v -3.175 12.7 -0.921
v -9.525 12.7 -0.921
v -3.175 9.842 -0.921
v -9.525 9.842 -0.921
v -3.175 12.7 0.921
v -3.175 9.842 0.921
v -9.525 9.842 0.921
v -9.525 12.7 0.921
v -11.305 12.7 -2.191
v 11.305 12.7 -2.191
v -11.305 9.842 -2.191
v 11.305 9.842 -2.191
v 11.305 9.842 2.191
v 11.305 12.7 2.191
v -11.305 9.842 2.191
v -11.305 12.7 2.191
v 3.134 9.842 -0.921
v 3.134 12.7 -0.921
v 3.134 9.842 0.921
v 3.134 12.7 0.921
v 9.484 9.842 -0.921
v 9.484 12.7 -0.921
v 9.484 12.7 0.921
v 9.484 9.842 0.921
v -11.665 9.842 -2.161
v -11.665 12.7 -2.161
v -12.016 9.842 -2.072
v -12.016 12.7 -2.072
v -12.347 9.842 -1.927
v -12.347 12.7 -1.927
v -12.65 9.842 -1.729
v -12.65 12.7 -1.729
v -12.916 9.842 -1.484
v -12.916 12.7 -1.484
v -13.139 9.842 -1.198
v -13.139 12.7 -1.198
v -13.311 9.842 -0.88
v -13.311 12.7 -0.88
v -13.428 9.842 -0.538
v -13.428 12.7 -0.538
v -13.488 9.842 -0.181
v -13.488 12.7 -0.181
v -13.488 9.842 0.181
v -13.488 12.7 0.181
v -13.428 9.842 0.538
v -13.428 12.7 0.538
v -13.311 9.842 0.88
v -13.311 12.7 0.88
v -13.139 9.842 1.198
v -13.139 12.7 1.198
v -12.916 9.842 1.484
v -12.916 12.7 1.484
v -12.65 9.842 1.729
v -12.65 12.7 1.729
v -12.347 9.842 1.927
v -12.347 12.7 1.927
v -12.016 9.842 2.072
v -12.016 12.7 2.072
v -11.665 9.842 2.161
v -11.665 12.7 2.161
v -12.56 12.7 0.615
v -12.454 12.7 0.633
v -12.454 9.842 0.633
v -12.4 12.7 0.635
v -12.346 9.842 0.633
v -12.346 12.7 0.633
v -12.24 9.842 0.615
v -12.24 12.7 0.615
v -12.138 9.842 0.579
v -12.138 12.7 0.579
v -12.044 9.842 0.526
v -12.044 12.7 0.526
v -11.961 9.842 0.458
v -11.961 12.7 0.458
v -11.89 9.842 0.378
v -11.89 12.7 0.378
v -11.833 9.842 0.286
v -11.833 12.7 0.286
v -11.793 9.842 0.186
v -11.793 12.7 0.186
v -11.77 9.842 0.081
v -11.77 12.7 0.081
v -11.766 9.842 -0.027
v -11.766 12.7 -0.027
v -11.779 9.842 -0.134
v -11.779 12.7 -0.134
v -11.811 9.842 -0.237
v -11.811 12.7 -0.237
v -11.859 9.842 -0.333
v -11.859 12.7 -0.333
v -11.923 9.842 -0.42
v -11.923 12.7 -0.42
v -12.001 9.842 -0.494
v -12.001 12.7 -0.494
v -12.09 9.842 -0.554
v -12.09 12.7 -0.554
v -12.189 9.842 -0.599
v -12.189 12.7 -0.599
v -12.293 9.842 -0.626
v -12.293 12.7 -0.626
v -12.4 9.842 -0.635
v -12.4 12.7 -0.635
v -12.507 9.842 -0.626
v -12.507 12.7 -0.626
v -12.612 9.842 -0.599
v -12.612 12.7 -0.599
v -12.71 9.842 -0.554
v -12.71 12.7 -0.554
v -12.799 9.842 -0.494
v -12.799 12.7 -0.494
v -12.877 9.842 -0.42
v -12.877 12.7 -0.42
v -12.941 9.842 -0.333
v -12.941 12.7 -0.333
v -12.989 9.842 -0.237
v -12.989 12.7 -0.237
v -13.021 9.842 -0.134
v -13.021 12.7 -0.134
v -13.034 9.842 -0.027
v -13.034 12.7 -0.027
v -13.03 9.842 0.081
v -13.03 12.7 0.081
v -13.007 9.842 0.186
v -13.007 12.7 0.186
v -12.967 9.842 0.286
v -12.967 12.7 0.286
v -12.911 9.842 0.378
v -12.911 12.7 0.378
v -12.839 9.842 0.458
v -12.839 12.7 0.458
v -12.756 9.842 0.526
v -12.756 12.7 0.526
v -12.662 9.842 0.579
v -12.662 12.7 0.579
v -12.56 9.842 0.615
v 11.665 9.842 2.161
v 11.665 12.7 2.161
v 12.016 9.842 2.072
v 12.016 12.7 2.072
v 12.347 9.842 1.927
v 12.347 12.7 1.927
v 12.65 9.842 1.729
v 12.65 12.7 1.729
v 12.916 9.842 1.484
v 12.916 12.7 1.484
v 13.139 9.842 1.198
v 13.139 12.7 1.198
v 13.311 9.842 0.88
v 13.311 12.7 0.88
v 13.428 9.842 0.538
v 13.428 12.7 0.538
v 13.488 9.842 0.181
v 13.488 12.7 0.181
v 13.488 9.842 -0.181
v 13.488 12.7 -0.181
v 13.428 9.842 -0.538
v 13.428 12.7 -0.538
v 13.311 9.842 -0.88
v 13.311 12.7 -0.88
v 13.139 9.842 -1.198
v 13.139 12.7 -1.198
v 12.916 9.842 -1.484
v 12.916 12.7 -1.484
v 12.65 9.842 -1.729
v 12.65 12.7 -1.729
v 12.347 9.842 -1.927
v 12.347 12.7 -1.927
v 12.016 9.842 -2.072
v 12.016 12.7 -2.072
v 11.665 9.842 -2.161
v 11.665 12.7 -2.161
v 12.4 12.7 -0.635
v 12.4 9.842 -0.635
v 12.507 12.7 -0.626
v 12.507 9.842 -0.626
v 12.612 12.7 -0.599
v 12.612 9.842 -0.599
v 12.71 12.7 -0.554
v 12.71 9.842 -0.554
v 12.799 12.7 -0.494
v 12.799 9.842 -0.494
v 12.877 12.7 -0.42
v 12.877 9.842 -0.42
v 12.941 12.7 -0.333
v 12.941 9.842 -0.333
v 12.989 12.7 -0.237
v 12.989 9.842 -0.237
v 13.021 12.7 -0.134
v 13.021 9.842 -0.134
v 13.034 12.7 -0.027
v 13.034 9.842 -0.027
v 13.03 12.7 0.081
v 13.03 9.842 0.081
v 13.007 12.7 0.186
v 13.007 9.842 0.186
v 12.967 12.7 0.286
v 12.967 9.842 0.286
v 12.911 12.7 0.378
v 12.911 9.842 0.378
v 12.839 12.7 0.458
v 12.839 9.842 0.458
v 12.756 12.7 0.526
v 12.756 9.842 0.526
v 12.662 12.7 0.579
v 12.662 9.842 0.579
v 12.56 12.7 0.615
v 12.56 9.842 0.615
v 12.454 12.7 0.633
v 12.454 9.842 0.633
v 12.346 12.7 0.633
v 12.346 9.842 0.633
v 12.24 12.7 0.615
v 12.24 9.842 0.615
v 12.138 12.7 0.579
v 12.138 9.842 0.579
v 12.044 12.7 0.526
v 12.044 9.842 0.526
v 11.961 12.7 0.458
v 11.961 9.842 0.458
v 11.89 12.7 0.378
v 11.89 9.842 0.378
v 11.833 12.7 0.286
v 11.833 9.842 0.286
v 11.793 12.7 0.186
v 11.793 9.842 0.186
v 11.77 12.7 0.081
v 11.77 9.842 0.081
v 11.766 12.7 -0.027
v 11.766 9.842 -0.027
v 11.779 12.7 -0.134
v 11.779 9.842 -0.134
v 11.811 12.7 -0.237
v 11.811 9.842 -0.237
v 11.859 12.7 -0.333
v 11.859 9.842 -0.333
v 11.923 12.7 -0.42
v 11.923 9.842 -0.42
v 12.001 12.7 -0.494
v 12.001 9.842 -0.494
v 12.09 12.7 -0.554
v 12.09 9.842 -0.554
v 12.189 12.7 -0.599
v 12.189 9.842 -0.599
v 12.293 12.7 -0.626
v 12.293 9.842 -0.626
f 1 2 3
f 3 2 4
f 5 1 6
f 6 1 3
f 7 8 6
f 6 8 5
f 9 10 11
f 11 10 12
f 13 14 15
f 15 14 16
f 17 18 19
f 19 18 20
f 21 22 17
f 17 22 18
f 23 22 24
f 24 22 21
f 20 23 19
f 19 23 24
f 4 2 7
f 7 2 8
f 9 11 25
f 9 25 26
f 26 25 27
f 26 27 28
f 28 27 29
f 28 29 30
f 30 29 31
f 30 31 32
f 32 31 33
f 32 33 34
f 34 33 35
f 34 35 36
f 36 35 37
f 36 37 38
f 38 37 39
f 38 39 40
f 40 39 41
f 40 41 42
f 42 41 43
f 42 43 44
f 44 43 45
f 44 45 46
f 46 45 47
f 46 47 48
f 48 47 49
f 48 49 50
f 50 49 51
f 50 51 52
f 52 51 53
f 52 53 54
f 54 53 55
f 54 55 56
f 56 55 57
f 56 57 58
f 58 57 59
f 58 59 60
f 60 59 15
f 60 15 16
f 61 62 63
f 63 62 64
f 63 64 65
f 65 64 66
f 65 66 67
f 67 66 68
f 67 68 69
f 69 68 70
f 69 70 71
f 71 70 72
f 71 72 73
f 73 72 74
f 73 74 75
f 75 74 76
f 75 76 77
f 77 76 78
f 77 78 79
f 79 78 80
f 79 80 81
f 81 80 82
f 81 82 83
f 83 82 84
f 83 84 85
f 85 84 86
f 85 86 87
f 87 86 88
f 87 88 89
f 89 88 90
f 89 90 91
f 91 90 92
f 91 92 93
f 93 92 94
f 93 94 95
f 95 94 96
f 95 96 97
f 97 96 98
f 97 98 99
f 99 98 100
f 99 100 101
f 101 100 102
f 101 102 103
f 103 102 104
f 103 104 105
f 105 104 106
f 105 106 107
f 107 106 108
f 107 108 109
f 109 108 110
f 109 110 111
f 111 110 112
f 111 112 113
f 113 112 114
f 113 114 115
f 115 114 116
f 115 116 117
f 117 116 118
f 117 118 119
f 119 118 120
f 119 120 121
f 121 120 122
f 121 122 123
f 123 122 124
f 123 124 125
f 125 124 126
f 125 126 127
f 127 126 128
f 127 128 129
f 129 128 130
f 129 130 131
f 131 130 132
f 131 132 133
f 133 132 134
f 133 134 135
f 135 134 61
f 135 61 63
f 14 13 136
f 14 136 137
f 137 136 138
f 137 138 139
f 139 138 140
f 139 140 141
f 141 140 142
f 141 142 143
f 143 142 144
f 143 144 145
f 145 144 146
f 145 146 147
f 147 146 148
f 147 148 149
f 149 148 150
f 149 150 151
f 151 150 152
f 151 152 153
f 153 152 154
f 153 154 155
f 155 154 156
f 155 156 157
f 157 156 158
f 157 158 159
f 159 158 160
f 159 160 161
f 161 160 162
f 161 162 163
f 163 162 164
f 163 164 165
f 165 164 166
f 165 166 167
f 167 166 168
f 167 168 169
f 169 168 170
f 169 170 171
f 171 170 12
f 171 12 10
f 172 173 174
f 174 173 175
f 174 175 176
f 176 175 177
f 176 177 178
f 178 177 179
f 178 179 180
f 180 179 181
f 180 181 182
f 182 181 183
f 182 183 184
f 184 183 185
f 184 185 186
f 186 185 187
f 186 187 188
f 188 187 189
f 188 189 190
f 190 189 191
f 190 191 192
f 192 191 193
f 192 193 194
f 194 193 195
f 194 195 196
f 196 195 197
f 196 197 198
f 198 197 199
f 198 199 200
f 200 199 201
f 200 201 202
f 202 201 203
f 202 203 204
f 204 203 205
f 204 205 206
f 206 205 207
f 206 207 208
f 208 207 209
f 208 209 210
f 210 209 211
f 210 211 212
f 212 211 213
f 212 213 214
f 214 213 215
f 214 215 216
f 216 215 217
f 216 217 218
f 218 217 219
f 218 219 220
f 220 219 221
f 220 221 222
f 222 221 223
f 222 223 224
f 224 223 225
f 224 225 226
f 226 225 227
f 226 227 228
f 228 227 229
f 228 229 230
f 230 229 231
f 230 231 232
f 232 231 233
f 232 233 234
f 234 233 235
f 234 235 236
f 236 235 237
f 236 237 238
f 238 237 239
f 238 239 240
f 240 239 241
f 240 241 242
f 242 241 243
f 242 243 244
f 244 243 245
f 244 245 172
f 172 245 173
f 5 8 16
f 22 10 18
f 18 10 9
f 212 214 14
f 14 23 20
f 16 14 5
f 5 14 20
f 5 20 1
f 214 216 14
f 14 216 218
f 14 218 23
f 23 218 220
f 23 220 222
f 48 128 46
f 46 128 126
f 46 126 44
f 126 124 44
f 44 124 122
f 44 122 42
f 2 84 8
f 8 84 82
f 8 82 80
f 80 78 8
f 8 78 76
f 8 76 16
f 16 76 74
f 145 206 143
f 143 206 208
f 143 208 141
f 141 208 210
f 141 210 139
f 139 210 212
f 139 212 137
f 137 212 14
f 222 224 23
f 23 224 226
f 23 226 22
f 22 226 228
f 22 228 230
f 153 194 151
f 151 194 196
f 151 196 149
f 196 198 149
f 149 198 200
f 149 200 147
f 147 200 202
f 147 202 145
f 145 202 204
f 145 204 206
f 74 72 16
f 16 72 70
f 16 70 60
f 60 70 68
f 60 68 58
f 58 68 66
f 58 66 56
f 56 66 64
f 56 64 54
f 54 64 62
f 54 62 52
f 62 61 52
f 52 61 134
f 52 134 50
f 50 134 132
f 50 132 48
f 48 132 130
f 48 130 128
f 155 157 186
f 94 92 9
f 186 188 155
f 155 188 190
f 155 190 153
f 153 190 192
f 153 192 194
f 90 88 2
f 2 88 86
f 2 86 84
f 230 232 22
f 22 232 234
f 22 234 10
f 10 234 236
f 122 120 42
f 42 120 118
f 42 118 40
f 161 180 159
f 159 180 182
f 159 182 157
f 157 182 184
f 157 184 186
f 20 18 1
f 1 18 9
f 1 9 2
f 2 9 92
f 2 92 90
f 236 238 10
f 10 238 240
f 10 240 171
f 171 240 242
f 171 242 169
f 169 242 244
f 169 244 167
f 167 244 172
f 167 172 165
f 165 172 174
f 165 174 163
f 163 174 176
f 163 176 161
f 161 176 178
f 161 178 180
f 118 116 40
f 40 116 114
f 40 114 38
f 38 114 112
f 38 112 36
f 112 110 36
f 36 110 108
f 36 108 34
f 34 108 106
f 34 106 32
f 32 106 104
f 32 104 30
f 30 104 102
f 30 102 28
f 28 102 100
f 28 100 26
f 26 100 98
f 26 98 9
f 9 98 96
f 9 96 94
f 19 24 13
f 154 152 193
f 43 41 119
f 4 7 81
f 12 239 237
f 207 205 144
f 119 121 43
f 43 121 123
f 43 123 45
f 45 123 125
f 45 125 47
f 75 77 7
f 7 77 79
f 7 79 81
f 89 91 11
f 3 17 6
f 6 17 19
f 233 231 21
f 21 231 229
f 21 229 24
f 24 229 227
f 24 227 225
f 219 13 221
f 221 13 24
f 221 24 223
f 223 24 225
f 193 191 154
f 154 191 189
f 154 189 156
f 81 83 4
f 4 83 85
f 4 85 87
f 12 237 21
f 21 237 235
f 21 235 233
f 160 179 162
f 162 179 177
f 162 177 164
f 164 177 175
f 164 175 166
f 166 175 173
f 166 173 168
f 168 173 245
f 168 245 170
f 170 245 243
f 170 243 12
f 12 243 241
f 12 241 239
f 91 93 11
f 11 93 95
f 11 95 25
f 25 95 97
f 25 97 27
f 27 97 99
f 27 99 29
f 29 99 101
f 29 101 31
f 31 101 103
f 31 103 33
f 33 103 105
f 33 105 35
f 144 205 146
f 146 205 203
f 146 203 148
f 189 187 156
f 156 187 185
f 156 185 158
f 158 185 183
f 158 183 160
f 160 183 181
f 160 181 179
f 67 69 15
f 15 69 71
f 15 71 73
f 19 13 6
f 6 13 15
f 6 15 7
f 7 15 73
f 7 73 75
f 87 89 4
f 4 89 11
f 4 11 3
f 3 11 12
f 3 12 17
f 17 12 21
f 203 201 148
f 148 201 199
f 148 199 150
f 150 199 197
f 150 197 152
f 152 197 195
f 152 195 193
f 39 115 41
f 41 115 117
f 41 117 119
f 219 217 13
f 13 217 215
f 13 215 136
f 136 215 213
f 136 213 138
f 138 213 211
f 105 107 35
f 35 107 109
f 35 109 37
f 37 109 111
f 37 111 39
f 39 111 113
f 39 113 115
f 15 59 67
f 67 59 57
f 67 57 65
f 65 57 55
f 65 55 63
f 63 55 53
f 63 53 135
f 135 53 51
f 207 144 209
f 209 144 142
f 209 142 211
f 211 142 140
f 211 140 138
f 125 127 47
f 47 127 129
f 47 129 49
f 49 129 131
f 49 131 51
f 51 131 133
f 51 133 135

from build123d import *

# Parameters (mm, degrees)
SKETCH1_W                = 22.609360872
SKETCH1_H                = 4.3815
SKETCH1_W_2              = 6.35
SKETCH1_H_2              = 1.8415
BOSS_EXTRUDE1_DEPTH      = 6.35
BOSS_EXTRUDE2_REACH      = 15.15
BOSS_EXTRUDE3_START      = 2.19075
BOSS_EXTRUDE3_DEPTH      = 2.19075
SKETCH7_R                = 1.5875
BOSS_EXTRUDE4_DEPTH      = 1.27
MIRROR2_COPY_1_SKETCH_R  = 1.5875
MIRROR2_COPY_1_DEPTH     = 1.27
BOSS_EXTRUDE5_DEPTH      = 6.35
BOSS_EXTRUDE5_DEPTH_BACK = 1.27
SKETCH8_R                = 0.635
SKETCH9_W                = 22.609360872
SKETCH9_H                = 6.35
BOSS_EXTRUDE6_DEPTH      = 4.3815
SKETCH10_W               = 6.35
SKETCH10_H               = 1.8415
CUT_EXTRUDE1_DEPTH       = 12.7
CUT_EXTRUDE2_DEPTH       = 23.114
CUT_EXTRUDE2_DEPTH_BACK  = 4.7625
SKETCH12_W               = 31.633822951
SKETCH12_H               = 14.456952732


with BuildPart() as part:
    # Sketch1 → Boss-Extrude1 (new body)
    with BuildSketch(Plane(origin=(0, 0, 0), x_dir=(1, 0, 0), z_dir=(0, 1, 0))):
        Rectangle(SKETCH1_W, SKETCH1_H)
        with Locations((-6.35, 0)):
            Rectangle(SKETCH1_W_2, SKETCH1_H_2, mode=Mode.SUBTRACT)
        with Locations((6.308703221, 0)):
            Rectangle(SKETCH1_W_2, SKETCH1_H_2, mode=Mode.SUBTRACT)
    extrude(amount=BOSS_EXTRUDE1_DEPTH)

    # Boss-Extrude2: up to this face of the body (flat: up to its plane)
    boss_extrude2_end = Plane(part.part.faces().sort_by_distance((0, 3.175, -2.19075))[0])
    # Sketch2 → Boss-Extrude2 (add, up to the picked face)
    with BuildSketch(Plane.XY, mode=Mode.PRIVATE) as boss_extrude2_sk1:
        with BuildLine():
            Line((3.175, 0), (-3.175, 0))
            ThreePointArc((-3.175, 0), (0, -3.175), (3.175, 0))
        make_face()
    boss_extrude2_tool1 = split(extrude(boss_extrude2_sk1.sketch, amount=-BOSS_EXTRUDE2_REACH, mode=Mode.PRIVATE), bisect_by=boss_extrude2_end, keep=Keep.BOTH, mode=Mode.PRIVATE)
    add(boss_extrude2_tool1.solids().sort_by(Axis((0, -1.347512, 0), (0, 0, -1)))[0])

    # Sketch2<3> → Boss-Extrude3 (add)
    with BuildSketch(Plane.XY.offset(BOSS_EXTRUDE3_START)):
        with BuildLine():
            Line((3.175, 0), (-3.175, 0))
            ThreePointArc((-3.175, 0), (0, -3.175), (3.175, 0))
        make_face()
    extrude(amount=-BOSS_EXTRUDE3_DEPTH)

    # Sketch7 → Boss-Extrude4 (add)
    with BuildSketch(Plane.XY.offset(2.19075)):
        with BuildLine():
            Line((-9.525, 0), (-11.304680436, 0))
            Line((-11.304680436, 0), (-11.304680436, -12.7))
            ThreePointArc((-11.304680436, -12.7), (-8.266575896, -13.958424104), (-9.525, -10.920319564))
            Line((-9.525, -10.920319564), (-9.525, 0))
        make_face()
        with Locations((-9.525, -12.7)):
            Circle(SKETCH7_R, mode=Mode.SUBTRACT)
    boss_extrude4 = extrude(amount=-BOSS_EXTRUDE4_DEPTH)

    # Mirror1: Boss-Extrude4 across plane
    add(boss_extrude4.mirror(Plane(origin=(0, 0, 0), x_dir=(0, 0, 1), z_dir=(1, 0, 0))))

    # Mirror2: Boss-Extrude4 across plane
    add(boss_extrude4.mirror(Plane.XY))

    # Mirror2 copy 1 sketch → Mirror2 copy 1 (add)
    with BuildSketch(Plane(origin=(0, 0, -2.19075), x_dir=(-1, 0, 0), z_dir=(0, 0, -1))):
        with BuildLine():
            Line((-9.525, 0), (-11.304680436, 0))
            Line((-11.304680436, 0), (-11.304680436, -12.7))
            ThreePointArc((-11.304680436, -12.7), (-8.266575896, -13.958424104), (-9.525, -10.920319564))
            Line((-9.525, -10.920319564), (-9.525, 0))
        make_face()
        with Locations((-9.525, -12.7)):
            Circle(MIRROR2_COPY_1_SKETCH_R, mode=Mode.SUBTRACT)
    extrude(amount=-MIRROR2_COPY_1_DEPTH)

    # Sketch8 → Boss-Extrude5 (add, two sides: drawn at the far end of the back side and taken through both)
    # profile 1 of 2: a face of its own
    with BuildSketch(Plane(origin=(0, 6.35, 0), x_dir=(1, 0, 0), z_dir=(0, 1, 0)).offset(-BOSS_EXTRUDE5_DEPTH_BACK)):
        with BuildLine():
            Line((-11.304680436, 2.19075), (-11.304680436, -2.19075))
            ThreePointArc((-11.304680436, -2.19075), (-13.495430436, 0), (-11.304680436, 2.19075))
        make_face()
        with Locations(Location((-12.400055436, 0, 0), (0, 0, 270))):
            Circle(SKETCH8_R, mode=Mode.SUBTRACT)
    # profile 2 of 2: a face of its own
    with BuildSketch(Plane(origin=(0, 6.35, 0), x_dir=(1, 0, 0), z_dir=(0, 1, 0)).offset(-BOSS_EXTRUDE5_DEPTH_BACK)):
        with BuildLine():
            Line((11.304680436, 2.19075), (11.304680436, -2.19075))
            ThreePointArc((11.304680436, -2.19075), (13.495430436, 0), (11.304680436, 2.19075))
        make_face()
        with Locations(Location((12.400055436, 0, 0), (0, 0, 90))):
            Circle(SKETCH8_R, mode=Mode.SUBTRACT)
    extrude(amount=BOSS_EXTRUDE5_DEPTH + BOSS_EXTRUDE5_DEPTH_BACK)

    # Sketch9 → Boss-Extrude6 (add)
    with BuildSketch(Plane(origin=(0, 0, -2.19075), x_dir=(-1, 0, 0), z_dir=(0, 0, -1))):
        with Locations((0, 9.525)):
            Rectangle(SKETCH9_W, SKETCH9_H)
    extrude(amount=-BOSS_EXTRUDE6_DEPTH)

    # Sketch10 → Cut-Extrude1 (cut)
    with BuildSketch(Plane(origin=(0, 12.7, 0), x_dir=(1, 0, 0), z_dir=(0, 1, 0))):
        with Locations((6.308703221, 0)):
            Rectangle(SKETCH10_W, SKETCH10_H)
        with Locations((-6.35, 0)):
            Rectangle(SKETCH10_W, SKETCH10_H)
    extrude(amount=-CUT_EXTRUDE1_DEPTH, mode=Mode.SUBTRACT)

    # Sketch12 → Cut-Extrude2 (cut, two sides: drawn at the far end of the back side and taken through both)
    with BuildSketch(Plane(origin=(0, 5.08, 0), x_dir=(-1, 0, 0), z_dir=(0, -1, 0)).offset(-CUT_EXTRUDE2_DEPTH_BACK)):
        with Locations((-0.08433307, 1.389523064)):
            Rectangle(SKETCH12_W, SKETCH12_H)
    extrude(amount=CUT_EXTRUDE2_DEPTH + CUT_EXTRUDE2_DEPTH_BACK, mode=Mode.SUBTRACT)


solid = part.part
